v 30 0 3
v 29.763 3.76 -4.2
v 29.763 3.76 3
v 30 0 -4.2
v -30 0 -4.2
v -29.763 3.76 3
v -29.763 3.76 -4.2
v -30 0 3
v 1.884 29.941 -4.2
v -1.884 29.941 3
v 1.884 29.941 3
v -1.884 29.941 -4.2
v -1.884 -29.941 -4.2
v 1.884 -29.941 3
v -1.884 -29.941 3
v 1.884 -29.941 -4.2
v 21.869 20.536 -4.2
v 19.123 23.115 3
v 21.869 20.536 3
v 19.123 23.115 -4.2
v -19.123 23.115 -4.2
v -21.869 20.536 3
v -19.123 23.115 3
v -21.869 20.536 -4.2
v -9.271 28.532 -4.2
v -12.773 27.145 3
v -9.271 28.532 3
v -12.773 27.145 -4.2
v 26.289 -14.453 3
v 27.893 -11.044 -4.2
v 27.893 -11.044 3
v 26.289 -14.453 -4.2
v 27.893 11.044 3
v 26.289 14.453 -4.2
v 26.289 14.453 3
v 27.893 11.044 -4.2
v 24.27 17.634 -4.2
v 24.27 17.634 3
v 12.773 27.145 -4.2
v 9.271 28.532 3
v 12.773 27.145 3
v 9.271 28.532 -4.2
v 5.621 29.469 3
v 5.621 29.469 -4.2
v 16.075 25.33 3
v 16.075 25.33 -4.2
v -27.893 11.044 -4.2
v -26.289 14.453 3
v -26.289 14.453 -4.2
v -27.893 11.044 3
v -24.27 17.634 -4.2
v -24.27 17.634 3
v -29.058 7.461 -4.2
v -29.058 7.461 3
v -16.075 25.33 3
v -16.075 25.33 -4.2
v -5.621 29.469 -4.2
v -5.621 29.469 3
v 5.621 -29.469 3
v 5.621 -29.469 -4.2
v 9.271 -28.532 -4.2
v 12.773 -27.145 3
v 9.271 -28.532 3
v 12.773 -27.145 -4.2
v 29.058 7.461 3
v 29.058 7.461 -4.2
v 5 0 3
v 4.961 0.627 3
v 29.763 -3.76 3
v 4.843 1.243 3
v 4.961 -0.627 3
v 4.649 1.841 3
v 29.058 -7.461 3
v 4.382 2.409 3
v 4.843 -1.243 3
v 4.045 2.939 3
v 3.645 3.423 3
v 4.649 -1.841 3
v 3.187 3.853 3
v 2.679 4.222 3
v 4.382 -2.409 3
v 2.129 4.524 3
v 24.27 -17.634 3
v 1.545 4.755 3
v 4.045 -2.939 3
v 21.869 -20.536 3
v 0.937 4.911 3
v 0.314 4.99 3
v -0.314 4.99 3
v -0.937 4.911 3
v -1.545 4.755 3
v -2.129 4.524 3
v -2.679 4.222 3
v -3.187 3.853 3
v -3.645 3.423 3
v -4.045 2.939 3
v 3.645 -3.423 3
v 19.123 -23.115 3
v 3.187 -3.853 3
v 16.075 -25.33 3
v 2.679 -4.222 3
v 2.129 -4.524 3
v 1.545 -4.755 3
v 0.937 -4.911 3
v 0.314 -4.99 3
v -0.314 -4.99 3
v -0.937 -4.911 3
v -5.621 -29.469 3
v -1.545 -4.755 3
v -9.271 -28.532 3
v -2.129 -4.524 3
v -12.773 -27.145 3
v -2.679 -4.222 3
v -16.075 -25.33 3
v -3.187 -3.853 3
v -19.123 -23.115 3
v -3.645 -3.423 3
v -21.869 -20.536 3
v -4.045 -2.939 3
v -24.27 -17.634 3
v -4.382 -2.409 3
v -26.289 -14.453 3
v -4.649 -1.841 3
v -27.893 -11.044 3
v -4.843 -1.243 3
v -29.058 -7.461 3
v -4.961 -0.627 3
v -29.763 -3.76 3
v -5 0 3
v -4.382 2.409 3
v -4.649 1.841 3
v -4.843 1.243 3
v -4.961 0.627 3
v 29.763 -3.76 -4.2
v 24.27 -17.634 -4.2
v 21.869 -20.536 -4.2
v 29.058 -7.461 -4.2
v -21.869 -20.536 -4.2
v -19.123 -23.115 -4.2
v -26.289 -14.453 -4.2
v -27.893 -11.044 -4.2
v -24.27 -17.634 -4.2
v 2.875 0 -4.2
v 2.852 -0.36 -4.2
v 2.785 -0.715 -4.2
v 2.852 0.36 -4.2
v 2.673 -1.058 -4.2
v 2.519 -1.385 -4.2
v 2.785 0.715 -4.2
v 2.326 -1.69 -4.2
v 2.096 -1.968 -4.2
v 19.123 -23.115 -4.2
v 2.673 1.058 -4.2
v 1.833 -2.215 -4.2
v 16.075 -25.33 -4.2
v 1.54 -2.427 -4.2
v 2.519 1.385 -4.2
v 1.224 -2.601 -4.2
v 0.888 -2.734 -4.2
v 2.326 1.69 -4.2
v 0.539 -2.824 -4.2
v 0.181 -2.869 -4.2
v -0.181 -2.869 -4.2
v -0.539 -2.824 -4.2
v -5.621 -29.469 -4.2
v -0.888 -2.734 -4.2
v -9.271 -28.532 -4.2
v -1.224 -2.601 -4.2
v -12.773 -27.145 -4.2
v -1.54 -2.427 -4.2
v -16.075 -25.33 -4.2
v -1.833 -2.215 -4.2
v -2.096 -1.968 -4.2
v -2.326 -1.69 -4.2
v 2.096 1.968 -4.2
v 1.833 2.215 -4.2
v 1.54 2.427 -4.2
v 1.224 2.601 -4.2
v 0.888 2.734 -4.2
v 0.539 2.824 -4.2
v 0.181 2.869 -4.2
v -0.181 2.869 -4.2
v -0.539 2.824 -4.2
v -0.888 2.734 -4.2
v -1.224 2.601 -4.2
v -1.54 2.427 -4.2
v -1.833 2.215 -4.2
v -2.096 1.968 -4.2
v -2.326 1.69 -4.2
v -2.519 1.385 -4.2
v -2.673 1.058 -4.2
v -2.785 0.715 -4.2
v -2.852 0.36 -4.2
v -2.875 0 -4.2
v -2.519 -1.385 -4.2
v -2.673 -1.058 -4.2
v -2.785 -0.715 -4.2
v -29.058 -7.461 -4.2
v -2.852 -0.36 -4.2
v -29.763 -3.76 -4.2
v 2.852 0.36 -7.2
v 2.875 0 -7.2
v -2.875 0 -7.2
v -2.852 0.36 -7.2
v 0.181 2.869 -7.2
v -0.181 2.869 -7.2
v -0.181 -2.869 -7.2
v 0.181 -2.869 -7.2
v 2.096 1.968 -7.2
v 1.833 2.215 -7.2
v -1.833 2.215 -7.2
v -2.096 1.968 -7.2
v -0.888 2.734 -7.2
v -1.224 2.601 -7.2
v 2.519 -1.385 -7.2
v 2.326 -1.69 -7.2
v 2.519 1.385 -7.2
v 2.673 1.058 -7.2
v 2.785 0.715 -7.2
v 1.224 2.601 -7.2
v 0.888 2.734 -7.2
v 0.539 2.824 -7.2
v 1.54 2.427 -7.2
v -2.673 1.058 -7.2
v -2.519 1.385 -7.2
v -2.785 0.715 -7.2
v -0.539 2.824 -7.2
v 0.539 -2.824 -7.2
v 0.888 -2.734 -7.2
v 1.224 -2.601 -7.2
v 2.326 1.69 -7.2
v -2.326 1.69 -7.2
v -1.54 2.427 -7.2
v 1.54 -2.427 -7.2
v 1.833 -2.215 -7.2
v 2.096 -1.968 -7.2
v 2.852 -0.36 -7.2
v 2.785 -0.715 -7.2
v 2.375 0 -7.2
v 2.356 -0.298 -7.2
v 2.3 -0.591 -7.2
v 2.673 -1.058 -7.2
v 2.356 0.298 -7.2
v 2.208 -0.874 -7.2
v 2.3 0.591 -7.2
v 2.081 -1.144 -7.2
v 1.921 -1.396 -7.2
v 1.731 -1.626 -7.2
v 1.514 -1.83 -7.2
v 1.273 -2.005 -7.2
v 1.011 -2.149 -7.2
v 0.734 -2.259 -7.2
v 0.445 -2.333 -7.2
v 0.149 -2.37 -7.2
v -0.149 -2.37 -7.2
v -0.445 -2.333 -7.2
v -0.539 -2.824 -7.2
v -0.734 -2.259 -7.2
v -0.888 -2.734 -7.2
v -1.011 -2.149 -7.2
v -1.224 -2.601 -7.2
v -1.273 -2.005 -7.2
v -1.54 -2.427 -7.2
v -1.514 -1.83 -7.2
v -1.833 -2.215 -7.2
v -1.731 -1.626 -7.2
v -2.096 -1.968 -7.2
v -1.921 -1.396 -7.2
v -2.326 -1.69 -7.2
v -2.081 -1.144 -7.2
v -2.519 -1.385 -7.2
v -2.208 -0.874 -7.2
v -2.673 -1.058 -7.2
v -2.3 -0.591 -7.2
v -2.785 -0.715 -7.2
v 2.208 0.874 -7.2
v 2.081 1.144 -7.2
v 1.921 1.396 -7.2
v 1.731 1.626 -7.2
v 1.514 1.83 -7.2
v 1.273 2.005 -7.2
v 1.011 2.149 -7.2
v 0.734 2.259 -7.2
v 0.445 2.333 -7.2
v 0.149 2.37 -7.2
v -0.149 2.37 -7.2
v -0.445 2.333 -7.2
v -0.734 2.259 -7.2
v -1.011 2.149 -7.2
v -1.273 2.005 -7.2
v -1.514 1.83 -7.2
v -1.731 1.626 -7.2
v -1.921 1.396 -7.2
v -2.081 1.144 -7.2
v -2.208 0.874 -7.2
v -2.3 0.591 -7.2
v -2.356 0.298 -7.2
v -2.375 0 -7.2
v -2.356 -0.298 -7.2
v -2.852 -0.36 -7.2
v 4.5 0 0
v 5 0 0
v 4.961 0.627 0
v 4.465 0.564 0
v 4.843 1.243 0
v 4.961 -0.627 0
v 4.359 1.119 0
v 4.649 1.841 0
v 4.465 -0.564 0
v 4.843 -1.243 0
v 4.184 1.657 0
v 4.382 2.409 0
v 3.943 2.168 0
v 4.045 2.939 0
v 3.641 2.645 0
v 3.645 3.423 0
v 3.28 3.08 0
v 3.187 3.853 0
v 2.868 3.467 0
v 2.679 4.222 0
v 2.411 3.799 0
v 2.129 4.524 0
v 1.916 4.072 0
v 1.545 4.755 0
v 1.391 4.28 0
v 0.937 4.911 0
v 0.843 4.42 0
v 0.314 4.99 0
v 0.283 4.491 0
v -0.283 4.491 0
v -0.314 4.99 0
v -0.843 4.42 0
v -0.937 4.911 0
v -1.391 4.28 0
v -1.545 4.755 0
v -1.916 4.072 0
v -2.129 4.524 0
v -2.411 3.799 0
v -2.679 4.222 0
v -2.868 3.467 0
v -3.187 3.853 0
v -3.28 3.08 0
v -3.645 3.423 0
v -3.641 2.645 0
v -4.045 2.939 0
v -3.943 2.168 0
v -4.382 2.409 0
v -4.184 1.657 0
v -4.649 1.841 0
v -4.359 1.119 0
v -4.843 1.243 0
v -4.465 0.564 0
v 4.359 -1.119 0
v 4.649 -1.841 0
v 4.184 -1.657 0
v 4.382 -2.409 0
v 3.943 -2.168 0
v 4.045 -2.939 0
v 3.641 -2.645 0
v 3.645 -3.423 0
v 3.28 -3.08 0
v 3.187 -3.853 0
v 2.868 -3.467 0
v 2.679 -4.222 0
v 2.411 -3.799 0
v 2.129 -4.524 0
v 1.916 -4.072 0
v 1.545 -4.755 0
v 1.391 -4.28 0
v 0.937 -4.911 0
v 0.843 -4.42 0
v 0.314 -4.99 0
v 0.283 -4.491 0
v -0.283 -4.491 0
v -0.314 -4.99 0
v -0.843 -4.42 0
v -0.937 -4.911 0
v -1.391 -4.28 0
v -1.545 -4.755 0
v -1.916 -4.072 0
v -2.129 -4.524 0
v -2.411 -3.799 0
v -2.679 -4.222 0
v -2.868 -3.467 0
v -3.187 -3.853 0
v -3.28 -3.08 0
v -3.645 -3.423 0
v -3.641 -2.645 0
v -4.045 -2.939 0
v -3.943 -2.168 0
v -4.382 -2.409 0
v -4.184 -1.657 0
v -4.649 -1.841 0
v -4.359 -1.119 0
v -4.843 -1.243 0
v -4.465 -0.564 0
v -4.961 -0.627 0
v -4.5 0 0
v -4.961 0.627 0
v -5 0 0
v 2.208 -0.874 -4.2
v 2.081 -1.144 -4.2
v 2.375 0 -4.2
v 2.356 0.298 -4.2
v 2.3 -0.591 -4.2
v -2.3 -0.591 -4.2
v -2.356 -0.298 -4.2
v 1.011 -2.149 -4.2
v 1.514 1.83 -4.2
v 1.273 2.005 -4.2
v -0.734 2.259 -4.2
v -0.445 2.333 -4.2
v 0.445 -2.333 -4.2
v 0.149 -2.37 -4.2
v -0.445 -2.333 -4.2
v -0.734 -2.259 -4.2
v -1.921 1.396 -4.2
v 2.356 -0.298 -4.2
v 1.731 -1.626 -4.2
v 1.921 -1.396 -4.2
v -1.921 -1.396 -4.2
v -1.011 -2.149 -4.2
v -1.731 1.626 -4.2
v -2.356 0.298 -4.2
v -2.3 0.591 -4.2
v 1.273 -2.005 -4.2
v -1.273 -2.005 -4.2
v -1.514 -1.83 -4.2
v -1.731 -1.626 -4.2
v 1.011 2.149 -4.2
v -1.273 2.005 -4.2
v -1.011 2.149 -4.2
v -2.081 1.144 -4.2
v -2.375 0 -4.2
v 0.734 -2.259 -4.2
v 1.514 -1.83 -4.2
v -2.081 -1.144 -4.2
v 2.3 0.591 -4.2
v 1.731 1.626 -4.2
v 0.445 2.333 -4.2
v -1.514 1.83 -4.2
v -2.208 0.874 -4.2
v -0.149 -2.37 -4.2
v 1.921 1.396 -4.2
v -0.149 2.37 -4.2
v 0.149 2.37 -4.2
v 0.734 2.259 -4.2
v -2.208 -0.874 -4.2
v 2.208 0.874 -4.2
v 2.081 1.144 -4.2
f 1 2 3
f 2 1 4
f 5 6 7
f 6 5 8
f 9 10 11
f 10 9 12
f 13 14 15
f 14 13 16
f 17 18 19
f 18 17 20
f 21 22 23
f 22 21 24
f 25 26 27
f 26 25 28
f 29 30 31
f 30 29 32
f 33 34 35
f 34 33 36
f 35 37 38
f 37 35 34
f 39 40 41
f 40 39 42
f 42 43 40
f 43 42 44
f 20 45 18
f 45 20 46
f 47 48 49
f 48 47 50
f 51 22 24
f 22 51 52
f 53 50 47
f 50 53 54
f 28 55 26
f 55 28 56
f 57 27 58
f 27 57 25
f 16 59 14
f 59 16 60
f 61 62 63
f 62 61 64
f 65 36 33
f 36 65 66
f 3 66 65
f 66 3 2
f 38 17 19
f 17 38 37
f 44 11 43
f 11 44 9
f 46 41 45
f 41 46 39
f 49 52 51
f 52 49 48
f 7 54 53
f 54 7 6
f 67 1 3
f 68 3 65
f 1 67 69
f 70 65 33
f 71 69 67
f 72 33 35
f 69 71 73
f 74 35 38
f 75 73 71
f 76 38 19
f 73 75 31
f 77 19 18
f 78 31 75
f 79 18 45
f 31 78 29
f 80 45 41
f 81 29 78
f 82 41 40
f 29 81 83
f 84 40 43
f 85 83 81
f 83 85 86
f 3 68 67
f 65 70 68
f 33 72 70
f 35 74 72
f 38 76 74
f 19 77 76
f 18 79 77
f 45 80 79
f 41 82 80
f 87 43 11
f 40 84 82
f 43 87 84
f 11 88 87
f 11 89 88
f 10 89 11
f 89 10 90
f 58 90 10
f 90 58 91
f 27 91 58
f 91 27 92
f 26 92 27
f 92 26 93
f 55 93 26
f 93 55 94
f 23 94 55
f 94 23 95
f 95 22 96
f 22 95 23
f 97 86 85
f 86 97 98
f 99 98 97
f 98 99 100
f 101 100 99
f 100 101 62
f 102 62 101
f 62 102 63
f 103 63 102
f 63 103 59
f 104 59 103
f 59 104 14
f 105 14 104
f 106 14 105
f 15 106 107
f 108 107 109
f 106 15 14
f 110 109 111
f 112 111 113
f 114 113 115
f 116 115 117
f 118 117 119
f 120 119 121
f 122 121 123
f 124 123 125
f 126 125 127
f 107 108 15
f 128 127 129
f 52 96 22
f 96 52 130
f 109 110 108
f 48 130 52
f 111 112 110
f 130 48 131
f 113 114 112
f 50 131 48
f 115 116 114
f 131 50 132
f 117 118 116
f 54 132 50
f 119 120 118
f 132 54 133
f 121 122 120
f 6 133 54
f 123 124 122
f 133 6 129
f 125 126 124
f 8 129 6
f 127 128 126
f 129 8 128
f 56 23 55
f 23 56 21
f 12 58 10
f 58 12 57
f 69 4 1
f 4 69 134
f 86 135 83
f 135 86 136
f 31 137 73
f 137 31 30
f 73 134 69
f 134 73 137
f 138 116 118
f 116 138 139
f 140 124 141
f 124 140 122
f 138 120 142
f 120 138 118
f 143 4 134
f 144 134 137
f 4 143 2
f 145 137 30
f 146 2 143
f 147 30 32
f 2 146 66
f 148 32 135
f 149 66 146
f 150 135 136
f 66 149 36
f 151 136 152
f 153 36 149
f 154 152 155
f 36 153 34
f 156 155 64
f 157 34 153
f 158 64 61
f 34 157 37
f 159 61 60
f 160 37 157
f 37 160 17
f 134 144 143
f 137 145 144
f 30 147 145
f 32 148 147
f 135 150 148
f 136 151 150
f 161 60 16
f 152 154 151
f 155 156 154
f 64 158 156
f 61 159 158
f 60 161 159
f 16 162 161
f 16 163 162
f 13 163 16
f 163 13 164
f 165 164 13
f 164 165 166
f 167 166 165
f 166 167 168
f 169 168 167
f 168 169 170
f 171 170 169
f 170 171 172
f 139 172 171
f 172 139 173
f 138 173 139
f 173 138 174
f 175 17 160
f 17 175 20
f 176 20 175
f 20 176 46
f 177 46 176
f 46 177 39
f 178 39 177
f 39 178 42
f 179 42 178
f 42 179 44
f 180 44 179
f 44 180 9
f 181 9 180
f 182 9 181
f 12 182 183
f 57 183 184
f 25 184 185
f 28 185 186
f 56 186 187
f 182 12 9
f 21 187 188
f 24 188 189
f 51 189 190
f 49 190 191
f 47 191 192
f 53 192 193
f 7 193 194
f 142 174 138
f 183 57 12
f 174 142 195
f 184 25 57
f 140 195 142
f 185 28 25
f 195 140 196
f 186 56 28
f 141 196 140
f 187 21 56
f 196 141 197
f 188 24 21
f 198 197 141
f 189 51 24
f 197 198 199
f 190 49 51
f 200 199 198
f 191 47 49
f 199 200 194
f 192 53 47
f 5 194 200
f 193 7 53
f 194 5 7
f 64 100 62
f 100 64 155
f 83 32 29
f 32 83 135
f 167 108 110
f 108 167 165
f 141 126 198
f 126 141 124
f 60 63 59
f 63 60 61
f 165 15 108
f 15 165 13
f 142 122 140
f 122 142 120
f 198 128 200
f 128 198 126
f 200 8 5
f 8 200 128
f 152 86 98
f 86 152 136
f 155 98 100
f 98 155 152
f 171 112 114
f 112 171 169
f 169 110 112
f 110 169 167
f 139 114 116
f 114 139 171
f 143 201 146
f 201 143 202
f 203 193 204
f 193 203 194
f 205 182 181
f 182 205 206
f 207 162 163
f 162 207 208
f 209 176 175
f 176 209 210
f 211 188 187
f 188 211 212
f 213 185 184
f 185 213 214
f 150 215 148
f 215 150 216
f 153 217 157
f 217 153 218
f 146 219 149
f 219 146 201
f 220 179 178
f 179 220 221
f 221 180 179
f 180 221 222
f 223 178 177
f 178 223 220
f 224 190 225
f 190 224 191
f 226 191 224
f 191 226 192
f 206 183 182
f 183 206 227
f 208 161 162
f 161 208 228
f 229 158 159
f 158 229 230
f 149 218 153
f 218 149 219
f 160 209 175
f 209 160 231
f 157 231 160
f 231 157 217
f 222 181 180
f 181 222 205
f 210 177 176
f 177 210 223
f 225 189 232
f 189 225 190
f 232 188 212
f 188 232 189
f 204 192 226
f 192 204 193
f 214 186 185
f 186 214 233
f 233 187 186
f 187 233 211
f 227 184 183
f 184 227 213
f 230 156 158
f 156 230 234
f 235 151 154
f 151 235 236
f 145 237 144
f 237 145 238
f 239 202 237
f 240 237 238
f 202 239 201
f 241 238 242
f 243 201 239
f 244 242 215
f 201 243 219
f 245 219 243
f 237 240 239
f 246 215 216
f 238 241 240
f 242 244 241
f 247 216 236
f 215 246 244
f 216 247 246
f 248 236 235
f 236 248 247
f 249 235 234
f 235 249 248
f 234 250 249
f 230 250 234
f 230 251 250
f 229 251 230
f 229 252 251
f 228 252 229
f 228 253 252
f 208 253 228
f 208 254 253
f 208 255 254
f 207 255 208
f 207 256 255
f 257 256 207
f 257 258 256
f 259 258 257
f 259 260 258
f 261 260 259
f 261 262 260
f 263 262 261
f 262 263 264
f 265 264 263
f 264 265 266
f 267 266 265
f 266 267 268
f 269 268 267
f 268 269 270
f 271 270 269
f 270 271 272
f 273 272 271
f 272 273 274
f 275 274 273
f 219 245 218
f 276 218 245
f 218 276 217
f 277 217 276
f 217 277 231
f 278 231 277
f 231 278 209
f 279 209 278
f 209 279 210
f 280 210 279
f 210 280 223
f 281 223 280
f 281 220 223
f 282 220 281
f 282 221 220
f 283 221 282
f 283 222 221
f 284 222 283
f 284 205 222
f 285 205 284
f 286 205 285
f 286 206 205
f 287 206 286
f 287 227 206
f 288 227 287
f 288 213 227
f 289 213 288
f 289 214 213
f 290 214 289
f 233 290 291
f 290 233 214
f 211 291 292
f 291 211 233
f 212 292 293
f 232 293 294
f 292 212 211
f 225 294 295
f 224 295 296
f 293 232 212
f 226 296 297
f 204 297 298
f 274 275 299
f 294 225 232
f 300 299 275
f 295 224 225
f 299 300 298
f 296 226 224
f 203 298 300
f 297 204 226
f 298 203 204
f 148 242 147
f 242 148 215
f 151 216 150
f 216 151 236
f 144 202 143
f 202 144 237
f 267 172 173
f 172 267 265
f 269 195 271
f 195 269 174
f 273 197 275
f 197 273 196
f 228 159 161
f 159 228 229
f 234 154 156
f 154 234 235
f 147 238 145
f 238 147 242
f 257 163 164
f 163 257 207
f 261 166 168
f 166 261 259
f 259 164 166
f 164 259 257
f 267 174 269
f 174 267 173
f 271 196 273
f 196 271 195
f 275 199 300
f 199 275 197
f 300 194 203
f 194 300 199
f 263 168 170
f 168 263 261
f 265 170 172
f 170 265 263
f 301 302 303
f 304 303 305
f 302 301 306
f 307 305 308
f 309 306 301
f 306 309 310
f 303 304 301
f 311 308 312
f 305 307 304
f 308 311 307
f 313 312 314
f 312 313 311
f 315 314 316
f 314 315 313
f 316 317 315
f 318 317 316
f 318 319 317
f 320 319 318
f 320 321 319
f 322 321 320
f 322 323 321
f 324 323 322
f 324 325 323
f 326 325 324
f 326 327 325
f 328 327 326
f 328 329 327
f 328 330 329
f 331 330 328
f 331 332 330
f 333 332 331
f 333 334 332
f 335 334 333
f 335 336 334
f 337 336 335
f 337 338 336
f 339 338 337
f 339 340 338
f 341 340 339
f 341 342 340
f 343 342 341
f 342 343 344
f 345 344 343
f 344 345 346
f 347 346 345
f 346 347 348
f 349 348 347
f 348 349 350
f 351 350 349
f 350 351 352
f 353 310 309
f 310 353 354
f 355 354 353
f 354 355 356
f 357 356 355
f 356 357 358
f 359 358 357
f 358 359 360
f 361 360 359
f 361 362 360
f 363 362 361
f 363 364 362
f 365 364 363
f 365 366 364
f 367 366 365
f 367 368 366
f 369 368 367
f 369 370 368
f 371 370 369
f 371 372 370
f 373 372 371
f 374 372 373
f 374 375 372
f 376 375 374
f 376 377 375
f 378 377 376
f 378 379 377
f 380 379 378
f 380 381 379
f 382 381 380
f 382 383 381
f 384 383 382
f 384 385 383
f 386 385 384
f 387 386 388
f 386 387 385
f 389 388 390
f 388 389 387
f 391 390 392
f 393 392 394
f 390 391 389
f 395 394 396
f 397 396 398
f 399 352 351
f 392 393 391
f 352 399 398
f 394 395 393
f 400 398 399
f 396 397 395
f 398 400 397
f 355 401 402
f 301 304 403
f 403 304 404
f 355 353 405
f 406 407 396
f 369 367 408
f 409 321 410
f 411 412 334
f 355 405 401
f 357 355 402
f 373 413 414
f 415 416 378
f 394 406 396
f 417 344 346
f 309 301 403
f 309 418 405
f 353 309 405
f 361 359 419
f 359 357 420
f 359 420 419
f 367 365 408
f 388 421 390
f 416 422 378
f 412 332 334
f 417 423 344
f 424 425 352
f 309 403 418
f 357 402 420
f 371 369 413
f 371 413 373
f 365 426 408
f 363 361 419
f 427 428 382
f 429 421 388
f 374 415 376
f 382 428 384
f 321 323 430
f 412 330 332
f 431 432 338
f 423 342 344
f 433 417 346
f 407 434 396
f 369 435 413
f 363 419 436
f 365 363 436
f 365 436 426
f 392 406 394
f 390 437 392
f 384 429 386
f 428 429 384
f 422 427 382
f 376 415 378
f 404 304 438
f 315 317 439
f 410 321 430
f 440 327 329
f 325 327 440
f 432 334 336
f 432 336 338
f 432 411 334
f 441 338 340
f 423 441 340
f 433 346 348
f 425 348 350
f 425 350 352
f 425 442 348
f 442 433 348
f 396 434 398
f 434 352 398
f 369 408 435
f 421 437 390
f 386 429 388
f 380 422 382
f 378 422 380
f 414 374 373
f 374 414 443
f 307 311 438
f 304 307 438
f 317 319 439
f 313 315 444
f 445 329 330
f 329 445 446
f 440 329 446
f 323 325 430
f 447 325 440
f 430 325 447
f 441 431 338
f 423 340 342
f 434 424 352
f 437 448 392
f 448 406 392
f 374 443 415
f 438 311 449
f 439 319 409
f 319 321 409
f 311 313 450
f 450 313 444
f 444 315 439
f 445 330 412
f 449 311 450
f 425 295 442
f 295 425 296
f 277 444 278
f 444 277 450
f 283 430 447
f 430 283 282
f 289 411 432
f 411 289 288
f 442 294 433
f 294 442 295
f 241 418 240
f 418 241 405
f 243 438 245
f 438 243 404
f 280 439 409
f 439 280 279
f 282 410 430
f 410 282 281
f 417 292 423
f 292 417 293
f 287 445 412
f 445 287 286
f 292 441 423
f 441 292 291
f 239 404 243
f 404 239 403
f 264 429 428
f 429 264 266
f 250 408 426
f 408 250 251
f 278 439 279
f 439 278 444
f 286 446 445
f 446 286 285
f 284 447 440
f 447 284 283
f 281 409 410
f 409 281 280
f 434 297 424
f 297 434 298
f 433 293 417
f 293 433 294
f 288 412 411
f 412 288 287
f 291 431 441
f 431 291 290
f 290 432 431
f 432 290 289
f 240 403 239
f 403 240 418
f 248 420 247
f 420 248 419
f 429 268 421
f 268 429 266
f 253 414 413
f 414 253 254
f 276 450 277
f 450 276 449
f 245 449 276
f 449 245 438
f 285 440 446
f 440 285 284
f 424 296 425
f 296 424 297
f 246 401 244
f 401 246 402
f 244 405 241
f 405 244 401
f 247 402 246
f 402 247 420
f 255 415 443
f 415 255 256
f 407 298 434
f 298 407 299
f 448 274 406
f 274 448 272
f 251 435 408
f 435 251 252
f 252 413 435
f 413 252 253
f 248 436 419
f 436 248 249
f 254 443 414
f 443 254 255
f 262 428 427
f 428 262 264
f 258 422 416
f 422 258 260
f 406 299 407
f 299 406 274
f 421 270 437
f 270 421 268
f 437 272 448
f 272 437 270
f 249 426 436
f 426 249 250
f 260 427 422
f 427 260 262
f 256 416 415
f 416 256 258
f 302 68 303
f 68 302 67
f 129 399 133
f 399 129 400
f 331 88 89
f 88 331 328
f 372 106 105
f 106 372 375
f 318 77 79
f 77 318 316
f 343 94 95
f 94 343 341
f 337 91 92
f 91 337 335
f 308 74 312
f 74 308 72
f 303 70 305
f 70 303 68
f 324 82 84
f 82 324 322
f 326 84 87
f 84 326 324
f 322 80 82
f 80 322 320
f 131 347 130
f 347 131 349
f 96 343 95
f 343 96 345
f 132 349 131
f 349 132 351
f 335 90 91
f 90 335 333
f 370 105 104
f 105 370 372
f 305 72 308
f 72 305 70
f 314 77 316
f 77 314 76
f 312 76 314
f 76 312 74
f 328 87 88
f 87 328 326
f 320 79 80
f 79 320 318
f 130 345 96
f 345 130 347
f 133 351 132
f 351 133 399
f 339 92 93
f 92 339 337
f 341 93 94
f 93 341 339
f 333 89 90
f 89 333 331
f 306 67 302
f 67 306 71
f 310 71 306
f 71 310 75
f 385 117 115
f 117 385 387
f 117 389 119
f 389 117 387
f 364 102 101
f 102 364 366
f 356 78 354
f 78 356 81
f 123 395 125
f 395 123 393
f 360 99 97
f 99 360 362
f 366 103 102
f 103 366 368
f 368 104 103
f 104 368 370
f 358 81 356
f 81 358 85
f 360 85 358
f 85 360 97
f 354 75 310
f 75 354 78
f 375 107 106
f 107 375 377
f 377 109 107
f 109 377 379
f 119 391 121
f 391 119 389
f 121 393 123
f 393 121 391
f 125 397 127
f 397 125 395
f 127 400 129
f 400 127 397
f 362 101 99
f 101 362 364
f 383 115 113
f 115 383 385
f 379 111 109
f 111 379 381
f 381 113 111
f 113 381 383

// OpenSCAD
$fn = 50;


difference() {
	union() {
		translate(v = [0, 0, -4.2000000000]) {
			cylinder(h = 7.2000000000, r = 30.0000000000);
		}
		#translate(v = [0, 0, -7.2000000000]) {
			cylinder(h = 7.2000000000, r = 2.8750000000);
		}
	}
	union() {
		translate(v = [0, 0, 0]) {
			rotate(a = [0, 0, 0]) {
				difference() {
					union() {
						translate(v = [0, 0, -7.2000000000]) {
							cylinder(h = 7.2000000000, r = 2.2500000000);
						}
						translate(v = [0, 0, -4.2000000000]) {
							cylinder(h = 4.2000000000, r1 = 2.3750000000, r2 = 4.5000000000);
						}
						translate(v = [0, 0, -7.2000000000]) {
							cylinder(h = 7.2000000000, r = 2.3750000000);
						}
						translate(v = [0, 0, -7.2000000000]) {
							cylinder(h = 7.2000000000, r = 2.2500000000);
						}
					}
					union();
				}
			}
		}
		#cylinder(h = 3, r = 5.0000000000);
	}
}
